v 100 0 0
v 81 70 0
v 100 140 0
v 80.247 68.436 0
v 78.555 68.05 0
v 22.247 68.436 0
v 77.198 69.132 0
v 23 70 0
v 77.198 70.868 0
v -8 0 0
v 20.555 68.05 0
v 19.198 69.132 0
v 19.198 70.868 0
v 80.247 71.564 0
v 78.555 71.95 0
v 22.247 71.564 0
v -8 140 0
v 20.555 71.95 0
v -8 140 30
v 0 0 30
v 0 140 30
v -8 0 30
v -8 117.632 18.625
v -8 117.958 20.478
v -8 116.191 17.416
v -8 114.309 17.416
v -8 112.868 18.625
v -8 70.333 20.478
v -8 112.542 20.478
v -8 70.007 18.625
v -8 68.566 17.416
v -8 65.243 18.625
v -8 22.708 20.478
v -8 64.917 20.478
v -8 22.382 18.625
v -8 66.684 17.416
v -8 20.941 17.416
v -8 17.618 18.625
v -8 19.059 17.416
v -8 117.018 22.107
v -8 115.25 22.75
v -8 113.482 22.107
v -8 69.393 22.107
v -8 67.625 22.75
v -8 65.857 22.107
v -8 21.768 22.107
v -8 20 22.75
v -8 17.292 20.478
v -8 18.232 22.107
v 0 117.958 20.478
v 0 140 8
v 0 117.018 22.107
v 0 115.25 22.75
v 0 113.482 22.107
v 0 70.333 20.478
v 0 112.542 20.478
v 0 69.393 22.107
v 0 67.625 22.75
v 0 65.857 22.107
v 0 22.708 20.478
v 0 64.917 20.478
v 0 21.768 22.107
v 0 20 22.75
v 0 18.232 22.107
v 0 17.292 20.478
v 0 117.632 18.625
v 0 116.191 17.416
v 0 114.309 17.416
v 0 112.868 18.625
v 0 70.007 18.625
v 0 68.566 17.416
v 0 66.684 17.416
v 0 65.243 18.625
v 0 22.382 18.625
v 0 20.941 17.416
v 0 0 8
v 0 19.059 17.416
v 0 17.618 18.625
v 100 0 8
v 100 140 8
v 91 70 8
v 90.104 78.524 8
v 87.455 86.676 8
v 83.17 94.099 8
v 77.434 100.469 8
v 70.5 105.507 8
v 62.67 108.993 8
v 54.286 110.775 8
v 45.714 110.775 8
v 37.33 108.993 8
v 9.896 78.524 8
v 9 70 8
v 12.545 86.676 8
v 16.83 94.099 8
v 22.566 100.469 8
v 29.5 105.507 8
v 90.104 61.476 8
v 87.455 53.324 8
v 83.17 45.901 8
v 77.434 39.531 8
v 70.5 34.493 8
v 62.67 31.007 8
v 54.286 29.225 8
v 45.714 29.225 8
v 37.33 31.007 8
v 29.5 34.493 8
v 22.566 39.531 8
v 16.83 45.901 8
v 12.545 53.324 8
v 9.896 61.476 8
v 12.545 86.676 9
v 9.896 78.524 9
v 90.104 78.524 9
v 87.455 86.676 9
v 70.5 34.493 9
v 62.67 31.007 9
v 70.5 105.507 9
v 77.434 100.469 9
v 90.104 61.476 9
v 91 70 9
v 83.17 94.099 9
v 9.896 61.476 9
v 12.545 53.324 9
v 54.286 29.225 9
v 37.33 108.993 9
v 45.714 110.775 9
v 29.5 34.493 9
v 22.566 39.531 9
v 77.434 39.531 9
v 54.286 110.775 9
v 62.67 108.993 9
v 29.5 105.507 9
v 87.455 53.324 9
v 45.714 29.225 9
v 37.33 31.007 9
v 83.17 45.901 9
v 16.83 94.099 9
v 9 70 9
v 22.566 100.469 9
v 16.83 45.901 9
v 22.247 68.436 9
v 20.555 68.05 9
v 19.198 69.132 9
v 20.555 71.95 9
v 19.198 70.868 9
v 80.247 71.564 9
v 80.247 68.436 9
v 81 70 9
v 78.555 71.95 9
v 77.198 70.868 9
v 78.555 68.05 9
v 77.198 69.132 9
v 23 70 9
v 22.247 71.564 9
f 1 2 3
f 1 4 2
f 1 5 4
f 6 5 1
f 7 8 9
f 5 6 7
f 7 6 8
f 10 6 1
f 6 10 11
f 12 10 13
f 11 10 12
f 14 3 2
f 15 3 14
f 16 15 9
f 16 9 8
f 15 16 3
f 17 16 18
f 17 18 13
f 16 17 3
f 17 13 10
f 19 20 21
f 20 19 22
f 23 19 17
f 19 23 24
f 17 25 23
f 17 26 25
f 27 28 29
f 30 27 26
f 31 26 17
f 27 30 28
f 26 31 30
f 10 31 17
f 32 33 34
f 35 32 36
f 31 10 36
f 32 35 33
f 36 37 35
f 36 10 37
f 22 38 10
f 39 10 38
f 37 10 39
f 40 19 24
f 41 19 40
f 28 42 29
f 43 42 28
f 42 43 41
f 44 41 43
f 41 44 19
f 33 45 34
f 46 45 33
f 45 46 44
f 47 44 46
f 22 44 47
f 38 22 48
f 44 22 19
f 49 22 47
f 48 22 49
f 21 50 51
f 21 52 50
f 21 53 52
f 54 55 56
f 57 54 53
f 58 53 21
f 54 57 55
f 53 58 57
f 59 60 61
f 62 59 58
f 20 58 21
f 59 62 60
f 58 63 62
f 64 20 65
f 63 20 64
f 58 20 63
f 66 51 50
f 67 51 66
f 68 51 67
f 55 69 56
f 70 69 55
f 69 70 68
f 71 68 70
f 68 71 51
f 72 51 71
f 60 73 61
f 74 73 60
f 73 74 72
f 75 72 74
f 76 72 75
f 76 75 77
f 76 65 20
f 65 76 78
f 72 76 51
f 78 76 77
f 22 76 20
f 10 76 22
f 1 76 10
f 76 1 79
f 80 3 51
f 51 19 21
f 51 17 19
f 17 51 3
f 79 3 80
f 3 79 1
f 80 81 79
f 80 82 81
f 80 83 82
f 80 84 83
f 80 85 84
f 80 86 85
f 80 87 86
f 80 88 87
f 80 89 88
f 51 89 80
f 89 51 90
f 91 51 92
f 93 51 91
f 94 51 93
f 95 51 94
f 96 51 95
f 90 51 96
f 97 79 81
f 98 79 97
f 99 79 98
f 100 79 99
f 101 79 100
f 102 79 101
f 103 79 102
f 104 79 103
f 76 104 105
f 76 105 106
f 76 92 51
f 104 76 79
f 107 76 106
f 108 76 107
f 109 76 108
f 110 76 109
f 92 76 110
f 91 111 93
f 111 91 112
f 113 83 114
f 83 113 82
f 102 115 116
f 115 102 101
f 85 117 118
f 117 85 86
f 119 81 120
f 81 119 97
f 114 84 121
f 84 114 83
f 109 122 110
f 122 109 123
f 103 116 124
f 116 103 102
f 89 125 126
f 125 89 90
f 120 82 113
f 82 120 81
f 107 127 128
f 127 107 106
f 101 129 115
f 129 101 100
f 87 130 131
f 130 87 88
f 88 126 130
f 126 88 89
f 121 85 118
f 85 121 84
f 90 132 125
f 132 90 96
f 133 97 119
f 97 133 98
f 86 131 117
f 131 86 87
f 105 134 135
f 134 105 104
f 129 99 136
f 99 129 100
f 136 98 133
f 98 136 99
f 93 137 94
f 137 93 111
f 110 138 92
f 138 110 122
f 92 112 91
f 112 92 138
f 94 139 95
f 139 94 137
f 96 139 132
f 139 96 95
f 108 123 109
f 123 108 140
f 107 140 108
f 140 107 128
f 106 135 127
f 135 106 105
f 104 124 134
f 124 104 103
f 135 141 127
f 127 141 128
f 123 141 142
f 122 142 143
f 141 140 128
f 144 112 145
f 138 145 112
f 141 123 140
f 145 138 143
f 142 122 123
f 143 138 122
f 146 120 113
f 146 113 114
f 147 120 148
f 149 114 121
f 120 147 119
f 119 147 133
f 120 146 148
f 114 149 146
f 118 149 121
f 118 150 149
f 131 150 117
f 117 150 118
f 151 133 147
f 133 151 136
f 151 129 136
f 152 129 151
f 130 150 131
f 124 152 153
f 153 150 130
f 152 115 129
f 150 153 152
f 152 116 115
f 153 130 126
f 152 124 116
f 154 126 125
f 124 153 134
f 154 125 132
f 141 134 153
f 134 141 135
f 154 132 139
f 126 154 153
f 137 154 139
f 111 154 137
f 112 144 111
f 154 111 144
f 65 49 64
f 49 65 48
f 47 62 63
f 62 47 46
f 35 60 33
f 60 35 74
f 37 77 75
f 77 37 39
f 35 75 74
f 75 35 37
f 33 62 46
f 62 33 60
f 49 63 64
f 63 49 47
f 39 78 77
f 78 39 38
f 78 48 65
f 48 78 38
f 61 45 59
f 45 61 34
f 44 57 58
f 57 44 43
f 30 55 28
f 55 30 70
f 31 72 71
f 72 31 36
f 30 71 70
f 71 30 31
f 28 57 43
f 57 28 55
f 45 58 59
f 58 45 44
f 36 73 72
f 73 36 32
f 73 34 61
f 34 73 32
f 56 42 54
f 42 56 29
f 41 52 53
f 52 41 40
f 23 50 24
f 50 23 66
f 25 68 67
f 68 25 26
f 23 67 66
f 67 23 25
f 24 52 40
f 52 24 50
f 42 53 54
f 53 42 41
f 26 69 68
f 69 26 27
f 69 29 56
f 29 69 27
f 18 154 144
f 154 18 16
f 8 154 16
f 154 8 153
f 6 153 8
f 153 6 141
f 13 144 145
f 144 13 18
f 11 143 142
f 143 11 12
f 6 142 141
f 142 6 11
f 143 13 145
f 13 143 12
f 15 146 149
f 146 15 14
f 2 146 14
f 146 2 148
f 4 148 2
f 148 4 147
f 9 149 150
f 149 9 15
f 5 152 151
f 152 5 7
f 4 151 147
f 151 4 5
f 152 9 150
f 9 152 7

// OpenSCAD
spacing = 47.625;
hspace = 58;

module body()
{
     rotate([0,-90,0]) cube([30,140,8]);
     translate([0,0,0]) cube([100,140,8]);
     translate([50,70,8]) cylinder(r=82/2,h=1);
     

}

module bracket()
{
     difference(){
      body();
      for ( i = [ 20 : spacing : 120 ] ){
         rotate([0,-90,0]) translate([20, i, -10]) cylinder(r=5.5/2,h=20);
         }
     translate([(50-(hspace/2)),70,0]) cylinder(r=4/2,h=10);    
     translate([(50+(hspace/2)),70,0]) cylinder(r=4/2,h=10); 
     }
     
}     
     
     bracket();
